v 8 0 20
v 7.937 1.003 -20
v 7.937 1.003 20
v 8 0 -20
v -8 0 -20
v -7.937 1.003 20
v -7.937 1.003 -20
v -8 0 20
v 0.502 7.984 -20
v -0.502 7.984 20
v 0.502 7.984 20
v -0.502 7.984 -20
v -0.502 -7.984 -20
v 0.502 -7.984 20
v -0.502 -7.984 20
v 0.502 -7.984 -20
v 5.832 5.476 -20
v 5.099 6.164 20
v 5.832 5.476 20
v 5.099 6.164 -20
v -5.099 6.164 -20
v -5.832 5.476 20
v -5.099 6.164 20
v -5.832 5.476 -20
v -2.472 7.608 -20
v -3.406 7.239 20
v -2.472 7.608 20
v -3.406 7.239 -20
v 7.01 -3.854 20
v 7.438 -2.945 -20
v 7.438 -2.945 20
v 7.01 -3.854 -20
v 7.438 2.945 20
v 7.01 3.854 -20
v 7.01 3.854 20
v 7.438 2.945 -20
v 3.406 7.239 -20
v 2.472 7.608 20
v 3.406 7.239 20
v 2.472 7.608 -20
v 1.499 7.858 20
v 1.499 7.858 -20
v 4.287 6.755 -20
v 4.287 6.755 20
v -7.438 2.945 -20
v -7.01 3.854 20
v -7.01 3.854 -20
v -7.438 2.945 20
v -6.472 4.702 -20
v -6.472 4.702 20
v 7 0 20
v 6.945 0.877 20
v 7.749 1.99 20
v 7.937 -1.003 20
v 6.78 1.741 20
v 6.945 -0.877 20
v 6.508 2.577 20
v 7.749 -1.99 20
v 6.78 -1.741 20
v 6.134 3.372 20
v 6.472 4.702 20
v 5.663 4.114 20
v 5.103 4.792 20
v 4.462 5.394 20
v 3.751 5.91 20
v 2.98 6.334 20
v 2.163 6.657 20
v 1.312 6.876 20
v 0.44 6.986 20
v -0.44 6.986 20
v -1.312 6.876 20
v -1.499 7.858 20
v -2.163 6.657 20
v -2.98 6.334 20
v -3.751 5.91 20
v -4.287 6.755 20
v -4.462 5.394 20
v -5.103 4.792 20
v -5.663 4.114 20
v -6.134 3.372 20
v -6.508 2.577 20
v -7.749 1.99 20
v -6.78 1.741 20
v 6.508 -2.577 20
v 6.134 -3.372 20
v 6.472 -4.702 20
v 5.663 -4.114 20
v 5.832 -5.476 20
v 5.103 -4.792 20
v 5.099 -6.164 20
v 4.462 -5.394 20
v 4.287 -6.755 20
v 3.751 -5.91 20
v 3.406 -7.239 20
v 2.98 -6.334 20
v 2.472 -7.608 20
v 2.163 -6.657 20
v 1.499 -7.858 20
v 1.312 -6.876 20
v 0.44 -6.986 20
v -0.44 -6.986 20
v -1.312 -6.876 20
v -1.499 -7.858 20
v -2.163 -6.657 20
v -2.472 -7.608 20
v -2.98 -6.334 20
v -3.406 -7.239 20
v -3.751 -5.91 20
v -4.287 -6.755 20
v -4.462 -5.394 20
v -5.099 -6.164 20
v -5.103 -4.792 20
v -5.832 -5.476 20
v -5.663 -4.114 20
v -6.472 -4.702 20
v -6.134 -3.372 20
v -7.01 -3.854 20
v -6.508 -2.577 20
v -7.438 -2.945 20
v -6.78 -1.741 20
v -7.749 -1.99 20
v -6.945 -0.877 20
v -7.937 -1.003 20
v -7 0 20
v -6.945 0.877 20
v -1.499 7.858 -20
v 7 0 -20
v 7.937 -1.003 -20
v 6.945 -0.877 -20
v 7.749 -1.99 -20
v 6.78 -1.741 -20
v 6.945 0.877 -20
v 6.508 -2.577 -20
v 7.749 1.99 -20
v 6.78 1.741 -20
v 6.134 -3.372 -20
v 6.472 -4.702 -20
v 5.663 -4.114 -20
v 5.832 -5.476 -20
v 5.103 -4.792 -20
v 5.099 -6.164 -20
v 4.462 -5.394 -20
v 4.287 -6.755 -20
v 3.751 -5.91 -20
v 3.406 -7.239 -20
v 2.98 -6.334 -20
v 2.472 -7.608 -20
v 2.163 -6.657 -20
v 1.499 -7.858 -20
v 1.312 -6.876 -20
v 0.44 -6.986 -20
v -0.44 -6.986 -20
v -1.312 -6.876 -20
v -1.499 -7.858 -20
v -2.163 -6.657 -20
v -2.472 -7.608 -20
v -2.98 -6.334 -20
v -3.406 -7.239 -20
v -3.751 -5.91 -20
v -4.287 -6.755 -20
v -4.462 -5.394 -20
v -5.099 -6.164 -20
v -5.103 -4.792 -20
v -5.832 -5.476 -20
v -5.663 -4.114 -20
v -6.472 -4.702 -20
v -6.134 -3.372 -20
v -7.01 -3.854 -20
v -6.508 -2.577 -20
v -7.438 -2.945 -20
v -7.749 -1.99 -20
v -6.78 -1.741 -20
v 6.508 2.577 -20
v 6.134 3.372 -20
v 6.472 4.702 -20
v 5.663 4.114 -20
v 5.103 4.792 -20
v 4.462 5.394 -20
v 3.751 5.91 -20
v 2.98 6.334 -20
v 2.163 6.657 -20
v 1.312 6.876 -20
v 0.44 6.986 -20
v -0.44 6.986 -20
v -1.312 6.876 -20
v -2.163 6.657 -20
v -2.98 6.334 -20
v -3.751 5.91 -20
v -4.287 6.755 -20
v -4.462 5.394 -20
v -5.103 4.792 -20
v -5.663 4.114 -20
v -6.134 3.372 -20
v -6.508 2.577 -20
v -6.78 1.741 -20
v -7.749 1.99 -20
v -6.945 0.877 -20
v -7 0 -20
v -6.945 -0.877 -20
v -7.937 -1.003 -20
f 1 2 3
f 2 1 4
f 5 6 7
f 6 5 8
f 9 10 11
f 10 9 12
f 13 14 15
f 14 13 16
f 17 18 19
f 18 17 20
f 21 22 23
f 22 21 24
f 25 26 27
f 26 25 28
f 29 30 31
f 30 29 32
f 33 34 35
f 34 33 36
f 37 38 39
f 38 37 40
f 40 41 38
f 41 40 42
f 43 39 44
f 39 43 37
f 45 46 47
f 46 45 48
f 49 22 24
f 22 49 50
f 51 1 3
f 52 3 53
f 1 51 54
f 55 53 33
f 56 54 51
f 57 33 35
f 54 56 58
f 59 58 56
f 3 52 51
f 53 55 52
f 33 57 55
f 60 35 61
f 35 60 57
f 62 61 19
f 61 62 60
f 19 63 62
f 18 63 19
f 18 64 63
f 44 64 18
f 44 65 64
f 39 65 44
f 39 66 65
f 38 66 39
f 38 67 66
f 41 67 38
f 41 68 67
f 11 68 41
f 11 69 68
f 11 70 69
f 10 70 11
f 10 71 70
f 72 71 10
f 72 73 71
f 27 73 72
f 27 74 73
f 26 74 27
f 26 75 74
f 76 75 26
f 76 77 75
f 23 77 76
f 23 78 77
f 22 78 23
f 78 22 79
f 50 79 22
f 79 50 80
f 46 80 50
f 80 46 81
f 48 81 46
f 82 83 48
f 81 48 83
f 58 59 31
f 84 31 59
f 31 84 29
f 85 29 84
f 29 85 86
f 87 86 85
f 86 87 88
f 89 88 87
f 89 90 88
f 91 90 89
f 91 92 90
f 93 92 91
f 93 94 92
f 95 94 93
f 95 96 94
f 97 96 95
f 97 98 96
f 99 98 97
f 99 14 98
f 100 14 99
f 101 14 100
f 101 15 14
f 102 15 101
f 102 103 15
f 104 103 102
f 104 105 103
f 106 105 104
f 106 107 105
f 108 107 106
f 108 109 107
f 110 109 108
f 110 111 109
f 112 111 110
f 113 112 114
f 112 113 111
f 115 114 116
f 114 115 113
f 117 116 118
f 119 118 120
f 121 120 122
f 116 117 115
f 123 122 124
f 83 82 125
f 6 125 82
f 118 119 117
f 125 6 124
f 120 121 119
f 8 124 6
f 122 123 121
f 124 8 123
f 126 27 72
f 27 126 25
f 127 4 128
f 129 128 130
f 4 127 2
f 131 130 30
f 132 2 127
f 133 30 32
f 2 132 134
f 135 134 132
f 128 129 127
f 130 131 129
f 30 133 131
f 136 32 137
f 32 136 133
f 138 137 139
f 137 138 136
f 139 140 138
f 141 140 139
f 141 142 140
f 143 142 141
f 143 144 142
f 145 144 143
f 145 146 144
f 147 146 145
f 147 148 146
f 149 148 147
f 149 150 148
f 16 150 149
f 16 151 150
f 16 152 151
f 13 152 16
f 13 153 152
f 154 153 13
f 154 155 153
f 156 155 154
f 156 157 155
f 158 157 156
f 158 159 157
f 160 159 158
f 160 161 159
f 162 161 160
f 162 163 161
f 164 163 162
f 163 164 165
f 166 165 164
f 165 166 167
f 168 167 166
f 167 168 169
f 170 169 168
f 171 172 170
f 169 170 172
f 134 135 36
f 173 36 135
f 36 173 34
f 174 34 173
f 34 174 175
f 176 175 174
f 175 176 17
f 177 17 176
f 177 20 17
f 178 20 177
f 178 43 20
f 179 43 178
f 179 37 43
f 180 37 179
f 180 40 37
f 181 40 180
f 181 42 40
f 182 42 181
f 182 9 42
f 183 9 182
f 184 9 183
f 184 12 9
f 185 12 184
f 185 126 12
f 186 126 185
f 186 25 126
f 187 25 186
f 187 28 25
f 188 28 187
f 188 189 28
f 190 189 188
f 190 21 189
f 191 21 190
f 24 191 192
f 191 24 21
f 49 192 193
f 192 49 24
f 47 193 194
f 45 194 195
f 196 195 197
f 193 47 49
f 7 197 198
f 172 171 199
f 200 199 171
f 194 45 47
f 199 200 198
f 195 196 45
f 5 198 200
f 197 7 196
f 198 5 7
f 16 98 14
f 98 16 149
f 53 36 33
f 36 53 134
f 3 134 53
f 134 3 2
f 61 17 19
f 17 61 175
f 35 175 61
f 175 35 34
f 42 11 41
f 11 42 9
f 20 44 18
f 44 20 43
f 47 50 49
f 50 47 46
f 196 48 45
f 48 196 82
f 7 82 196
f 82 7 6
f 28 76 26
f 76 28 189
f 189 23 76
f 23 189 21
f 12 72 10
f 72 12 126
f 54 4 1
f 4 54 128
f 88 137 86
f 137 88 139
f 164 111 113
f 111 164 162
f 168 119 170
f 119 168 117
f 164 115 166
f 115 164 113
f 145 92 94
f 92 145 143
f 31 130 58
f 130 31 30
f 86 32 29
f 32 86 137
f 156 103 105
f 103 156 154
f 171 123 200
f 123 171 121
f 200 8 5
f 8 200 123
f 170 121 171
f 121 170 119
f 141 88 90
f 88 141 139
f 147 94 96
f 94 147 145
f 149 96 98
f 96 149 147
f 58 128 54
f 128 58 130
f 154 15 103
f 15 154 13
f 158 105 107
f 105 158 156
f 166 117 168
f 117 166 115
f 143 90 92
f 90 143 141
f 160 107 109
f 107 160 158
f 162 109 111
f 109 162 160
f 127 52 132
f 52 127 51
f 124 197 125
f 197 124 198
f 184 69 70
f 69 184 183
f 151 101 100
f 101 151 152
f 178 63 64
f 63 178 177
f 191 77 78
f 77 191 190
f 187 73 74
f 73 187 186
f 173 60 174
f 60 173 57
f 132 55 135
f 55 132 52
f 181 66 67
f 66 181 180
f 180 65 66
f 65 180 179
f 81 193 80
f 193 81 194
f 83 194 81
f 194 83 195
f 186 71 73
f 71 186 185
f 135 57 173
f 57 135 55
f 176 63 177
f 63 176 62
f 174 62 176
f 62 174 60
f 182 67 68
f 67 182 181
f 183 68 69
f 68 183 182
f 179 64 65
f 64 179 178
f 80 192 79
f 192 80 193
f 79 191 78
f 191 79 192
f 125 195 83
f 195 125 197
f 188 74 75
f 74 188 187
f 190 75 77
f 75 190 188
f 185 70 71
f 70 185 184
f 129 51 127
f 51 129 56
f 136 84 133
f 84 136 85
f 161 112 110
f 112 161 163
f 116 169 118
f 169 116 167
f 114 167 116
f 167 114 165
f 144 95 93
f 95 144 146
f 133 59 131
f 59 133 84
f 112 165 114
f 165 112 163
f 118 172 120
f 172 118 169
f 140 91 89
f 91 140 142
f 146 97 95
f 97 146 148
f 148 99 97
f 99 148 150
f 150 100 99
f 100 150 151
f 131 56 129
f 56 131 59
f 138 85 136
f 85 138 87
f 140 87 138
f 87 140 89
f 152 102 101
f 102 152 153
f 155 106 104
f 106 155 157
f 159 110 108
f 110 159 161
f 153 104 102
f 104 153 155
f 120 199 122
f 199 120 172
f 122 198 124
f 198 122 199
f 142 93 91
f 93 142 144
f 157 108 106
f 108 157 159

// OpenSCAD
$fn = 50;


difference() {
	union() {
		translate(v = [0, 0, -20.0000000000]) {
			cylinder(h = 40, r = 8.0000000000);
		}
	}
	union() {
		translate(v = [0, 0, -100.0000000000]) {
			cylinder(h = 200, r = 7);
		}
	}
}
